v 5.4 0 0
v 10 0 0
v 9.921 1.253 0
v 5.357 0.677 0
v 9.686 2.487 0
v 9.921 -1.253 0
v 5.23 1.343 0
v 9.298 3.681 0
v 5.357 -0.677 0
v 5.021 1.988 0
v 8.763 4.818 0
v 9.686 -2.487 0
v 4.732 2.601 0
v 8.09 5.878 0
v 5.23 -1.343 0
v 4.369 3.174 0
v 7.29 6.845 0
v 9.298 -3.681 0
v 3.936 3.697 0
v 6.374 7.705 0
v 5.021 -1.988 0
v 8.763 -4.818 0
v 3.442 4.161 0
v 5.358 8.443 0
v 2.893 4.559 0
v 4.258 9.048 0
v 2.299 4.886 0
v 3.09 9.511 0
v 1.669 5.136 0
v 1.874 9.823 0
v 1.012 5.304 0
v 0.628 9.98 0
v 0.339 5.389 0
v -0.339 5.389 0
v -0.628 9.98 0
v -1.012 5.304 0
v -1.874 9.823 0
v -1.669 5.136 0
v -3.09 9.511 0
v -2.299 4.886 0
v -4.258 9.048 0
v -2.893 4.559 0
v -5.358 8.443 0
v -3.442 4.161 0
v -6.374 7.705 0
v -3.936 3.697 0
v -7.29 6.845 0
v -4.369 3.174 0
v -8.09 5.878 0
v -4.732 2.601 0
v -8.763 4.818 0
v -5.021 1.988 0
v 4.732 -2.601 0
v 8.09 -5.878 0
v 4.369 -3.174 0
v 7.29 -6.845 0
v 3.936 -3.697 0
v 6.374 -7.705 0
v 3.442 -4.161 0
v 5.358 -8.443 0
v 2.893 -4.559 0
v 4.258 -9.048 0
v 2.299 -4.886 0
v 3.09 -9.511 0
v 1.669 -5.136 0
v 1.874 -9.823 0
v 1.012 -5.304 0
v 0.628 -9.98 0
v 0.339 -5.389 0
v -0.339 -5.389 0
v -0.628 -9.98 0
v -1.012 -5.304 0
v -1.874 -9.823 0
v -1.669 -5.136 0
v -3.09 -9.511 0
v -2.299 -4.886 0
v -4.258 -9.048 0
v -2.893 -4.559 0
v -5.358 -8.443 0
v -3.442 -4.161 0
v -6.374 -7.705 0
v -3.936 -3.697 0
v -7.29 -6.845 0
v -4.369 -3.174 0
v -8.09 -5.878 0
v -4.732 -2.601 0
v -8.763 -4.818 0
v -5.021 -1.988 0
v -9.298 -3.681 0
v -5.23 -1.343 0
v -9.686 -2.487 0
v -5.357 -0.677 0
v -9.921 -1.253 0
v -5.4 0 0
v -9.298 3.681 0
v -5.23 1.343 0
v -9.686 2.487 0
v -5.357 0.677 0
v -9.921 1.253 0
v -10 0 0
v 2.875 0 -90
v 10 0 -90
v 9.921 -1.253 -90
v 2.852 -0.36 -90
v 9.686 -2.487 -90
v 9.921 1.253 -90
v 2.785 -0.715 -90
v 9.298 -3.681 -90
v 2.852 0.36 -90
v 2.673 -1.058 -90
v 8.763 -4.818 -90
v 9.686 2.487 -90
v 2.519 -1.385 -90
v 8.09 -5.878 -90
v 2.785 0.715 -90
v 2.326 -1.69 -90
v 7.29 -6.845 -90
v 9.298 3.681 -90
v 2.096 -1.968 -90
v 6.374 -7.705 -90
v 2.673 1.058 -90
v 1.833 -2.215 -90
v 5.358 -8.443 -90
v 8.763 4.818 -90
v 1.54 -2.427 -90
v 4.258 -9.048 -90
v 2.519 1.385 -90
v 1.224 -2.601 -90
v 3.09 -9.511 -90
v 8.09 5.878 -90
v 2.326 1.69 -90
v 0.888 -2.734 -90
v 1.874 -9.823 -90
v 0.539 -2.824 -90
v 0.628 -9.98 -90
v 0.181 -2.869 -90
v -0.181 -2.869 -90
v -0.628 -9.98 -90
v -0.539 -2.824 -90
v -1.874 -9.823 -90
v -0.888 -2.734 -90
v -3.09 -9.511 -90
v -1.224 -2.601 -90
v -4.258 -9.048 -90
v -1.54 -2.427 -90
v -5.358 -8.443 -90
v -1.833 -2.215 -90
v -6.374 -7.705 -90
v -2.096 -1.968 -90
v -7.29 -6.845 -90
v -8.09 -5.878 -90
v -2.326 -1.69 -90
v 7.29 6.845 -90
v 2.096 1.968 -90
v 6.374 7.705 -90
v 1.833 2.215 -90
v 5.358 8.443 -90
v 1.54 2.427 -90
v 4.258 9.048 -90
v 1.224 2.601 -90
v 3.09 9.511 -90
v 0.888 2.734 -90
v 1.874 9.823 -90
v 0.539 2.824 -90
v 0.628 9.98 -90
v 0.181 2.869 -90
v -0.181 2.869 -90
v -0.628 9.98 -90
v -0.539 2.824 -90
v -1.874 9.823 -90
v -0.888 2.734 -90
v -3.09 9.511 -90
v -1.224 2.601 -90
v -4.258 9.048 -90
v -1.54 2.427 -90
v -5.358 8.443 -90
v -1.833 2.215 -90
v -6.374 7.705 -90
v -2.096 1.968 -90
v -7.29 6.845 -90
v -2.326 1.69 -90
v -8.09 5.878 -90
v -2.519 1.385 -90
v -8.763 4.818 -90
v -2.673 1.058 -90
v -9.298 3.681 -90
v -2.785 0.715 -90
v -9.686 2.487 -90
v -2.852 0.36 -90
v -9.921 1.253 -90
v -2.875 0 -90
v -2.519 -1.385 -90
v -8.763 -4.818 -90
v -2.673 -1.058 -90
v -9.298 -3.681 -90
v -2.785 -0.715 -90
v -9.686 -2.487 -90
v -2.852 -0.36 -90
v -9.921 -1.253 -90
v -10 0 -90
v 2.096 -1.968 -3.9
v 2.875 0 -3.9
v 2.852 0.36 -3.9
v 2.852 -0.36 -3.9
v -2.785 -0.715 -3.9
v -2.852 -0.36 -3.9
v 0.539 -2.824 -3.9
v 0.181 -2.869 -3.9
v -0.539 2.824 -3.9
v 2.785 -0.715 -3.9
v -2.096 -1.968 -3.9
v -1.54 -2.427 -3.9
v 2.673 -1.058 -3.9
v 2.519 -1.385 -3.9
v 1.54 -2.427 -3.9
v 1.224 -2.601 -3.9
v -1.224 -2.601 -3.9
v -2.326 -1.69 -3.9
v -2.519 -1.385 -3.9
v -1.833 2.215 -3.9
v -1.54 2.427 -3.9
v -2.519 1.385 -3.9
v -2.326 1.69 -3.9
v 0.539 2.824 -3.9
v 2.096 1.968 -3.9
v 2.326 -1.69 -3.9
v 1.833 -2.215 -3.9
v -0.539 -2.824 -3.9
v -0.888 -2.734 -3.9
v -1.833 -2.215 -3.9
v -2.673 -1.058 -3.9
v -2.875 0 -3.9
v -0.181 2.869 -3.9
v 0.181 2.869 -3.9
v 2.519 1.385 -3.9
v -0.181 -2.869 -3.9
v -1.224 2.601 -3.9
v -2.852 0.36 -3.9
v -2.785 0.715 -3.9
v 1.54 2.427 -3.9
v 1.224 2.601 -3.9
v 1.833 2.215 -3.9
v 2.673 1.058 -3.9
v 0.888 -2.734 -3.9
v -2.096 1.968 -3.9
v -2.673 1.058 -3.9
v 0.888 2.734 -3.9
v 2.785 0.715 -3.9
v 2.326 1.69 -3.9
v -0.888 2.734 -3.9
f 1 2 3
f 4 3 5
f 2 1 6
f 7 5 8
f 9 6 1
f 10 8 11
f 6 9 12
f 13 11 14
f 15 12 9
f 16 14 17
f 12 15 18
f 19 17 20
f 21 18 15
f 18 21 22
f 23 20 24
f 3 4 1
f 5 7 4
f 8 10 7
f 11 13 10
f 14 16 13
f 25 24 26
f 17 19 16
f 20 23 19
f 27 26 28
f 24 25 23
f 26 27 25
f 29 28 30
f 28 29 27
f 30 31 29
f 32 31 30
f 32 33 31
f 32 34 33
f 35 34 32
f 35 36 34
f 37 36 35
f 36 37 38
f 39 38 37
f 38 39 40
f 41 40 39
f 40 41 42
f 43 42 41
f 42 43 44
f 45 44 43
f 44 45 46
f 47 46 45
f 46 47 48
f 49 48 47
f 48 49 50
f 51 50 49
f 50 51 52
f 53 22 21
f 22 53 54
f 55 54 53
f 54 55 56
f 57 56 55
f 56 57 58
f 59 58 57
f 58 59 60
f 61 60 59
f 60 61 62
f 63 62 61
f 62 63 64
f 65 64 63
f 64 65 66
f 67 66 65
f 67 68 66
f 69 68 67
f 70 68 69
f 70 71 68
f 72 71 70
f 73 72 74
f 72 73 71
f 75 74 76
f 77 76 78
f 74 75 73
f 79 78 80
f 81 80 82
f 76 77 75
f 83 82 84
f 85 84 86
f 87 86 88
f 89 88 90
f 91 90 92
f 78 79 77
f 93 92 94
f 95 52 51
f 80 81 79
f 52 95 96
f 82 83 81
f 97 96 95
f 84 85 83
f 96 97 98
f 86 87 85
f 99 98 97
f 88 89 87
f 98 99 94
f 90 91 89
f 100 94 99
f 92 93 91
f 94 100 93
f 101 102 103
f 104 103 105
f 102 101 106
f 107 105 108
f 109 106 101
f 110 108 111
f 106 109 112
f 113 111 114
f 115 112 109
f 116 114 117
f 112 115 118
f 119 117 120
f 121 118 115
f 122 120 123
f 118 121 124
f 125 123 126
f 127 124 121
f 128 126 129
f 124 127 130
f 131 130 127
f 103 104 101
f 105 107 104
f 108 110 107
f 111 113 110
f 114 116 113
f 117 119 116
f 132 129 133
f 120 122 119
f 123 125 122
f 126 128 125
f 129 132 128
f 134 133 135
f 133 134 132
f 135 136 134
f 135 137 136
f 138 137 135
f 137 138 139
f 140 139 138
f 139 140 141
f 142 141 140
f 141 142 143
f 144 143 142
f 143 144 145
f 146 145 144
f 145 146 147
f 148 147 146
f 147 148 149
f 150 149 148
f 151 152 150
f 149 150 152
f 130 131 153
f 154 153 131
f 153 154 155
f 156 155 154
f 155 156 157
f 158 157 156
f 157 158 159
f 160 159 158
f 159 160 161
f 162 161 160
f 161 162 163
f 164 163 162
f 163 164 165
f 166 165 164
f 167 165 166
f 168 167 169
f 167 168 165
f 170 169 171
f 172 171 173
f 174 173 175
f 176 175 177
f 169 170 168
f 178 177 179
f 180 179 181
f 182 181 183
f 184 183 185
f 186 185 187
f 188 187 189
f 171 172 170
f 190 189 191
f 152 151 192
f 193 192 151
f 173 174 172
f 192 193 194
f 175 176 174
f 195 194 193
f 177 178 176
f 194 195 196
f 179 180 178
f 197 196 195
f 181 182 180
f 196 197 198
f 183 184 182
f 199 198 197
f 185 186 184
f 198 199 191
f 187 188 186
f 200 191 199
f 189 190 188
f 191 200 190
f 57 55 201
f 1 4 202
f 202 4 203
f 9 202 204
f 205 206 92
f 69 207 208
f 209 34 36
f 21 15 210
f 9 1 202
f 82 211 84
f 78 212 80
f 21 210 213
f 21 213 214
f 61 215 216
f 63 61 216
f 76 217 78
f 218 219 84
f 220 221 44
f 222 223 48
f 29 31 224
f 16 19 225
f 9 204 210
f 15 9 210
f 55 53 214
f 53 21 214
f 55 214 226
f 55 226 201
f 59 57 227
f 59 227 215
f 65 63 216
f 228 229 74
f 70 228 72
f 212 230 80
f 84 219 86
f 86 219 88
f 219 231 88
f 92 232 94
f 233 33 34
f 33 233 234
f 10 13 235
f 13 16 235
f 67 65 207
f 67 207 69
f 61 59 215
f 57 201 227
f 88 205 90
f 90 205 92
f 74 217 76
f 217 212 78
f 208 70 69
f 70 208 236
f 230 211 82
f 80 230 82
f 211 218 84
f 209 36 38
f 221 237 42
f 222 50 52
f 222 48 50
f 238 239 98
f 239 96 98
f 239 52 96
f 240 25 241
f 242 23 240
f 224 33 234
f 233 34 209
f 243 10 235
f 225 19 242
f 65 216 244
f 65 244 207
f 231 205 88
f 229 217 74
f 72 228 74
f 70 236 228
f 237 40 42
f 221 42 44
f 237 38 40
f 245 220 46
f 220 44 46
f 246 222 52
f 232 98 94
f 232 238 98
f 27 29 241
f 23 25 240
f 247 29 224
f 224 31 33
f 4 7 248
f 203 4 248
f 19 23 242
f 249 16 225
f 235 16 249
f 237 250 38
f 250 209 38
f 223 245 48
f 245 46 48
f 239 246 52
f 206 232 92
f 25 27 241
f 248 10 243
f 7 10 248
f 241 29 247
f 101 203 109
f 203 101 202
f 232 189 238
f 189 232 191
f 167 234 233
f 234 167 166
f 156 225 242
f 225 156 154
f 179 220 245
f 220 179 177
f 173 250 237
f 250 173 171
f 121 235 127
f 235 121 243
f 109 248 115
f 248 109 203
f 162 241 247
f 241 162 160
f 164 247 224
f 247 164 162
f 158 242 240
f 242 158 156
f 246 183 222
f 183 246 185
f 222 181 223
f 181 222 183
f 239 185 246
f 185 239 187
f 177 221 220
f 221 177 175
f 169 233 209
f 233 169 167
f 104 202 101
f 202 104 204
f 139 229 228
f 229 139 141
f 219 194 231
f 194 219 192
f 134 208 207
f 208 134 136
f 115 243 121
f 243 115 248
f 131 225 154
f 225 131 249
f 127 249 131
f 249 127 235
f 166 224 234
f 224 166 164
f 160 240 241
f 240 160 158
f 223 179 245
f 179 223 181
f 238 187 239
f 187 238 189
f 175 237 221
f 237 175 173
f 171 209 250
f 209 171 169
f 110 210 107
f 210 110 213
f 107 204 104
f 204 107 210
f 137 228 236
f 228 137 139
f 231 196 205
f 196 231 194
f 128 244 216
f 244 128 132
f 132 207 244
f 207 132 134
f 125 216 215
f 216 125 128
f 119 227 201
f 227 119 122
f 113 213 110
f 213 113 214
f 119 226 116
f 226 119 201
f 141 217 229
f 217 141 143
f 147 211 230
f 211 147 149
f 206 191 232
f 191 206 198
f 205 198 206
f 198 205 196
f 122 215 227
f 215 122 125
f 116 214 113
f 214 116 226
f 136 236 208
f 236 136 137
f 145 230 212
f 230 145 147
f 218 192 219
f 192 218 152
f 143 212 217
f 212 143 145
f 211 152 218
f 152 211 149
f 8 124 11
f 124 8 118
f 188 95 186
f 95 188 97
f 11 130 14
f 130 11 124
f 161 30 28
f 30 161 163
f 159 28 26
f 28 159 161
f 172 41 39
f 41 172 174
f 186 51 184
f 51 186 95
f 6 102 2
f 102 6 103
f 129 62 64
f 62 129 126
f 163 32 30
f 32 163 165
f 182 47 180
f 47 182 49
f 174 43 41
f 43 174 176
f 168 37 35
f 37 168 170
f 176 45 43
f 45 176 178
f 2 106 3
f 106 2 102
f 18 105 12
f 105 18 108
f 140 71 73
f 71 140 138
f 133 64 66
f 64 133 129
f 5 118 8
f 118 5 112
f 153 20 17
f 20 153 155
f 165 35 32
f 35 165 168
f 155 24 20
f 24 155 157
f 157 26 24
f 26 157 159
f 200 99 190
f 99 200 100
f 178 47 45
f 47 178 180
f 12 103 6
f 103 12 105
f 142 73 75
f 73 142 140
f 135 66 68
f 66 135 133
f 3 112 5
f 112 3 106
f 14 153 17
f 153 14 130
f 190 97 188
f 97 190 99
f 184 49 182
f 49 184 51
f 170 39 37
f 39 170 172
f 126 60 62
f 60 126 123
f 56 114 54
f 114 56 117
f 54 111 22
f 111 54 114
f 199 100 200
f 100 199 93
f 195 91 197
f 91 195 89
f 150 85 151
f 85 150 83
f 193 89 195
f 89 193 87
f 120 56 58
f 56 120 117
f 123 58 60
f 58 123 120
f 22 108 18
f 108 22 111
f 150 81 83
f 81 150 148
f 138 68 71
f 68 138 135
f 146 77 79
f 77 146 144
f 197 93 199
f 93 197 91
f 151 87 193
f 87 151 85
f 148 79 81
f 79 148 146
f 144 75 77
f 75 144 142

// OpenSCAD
$fn = 50;


difference() {
	union() {
		translate(v = [0, 0, -90.0000000000]) {
			cylinder(h = 90, r = 10.0000000000);
		}
	}
	union() {
		translate(v = [0, 0, 0]) {
			rotate(a = [0, 0, 0]) {
				difference() {
					union() {
						#translate(v = [0, 0, -90.0000000000]) {
							cylinder(h = 90, r = 2.6000000000);
						}
						#translate(v = [0, 0, -3.9000000000]) {
							cylinder(h = 3.9000000000, r1 = 2.8750000000, r2 = 5.4000000000);
						}
						#translate(v = [0, 0, -90.0000000000]) {
							cylinder(h = 90, r = 2.8750000000);
						}
						#translate(v = [0, 0, -90.0000000000]) {
							cylinder(h = 90, r = 2.6000000000);
						}
					}
					union();
				}
			}
		}
	}
}
